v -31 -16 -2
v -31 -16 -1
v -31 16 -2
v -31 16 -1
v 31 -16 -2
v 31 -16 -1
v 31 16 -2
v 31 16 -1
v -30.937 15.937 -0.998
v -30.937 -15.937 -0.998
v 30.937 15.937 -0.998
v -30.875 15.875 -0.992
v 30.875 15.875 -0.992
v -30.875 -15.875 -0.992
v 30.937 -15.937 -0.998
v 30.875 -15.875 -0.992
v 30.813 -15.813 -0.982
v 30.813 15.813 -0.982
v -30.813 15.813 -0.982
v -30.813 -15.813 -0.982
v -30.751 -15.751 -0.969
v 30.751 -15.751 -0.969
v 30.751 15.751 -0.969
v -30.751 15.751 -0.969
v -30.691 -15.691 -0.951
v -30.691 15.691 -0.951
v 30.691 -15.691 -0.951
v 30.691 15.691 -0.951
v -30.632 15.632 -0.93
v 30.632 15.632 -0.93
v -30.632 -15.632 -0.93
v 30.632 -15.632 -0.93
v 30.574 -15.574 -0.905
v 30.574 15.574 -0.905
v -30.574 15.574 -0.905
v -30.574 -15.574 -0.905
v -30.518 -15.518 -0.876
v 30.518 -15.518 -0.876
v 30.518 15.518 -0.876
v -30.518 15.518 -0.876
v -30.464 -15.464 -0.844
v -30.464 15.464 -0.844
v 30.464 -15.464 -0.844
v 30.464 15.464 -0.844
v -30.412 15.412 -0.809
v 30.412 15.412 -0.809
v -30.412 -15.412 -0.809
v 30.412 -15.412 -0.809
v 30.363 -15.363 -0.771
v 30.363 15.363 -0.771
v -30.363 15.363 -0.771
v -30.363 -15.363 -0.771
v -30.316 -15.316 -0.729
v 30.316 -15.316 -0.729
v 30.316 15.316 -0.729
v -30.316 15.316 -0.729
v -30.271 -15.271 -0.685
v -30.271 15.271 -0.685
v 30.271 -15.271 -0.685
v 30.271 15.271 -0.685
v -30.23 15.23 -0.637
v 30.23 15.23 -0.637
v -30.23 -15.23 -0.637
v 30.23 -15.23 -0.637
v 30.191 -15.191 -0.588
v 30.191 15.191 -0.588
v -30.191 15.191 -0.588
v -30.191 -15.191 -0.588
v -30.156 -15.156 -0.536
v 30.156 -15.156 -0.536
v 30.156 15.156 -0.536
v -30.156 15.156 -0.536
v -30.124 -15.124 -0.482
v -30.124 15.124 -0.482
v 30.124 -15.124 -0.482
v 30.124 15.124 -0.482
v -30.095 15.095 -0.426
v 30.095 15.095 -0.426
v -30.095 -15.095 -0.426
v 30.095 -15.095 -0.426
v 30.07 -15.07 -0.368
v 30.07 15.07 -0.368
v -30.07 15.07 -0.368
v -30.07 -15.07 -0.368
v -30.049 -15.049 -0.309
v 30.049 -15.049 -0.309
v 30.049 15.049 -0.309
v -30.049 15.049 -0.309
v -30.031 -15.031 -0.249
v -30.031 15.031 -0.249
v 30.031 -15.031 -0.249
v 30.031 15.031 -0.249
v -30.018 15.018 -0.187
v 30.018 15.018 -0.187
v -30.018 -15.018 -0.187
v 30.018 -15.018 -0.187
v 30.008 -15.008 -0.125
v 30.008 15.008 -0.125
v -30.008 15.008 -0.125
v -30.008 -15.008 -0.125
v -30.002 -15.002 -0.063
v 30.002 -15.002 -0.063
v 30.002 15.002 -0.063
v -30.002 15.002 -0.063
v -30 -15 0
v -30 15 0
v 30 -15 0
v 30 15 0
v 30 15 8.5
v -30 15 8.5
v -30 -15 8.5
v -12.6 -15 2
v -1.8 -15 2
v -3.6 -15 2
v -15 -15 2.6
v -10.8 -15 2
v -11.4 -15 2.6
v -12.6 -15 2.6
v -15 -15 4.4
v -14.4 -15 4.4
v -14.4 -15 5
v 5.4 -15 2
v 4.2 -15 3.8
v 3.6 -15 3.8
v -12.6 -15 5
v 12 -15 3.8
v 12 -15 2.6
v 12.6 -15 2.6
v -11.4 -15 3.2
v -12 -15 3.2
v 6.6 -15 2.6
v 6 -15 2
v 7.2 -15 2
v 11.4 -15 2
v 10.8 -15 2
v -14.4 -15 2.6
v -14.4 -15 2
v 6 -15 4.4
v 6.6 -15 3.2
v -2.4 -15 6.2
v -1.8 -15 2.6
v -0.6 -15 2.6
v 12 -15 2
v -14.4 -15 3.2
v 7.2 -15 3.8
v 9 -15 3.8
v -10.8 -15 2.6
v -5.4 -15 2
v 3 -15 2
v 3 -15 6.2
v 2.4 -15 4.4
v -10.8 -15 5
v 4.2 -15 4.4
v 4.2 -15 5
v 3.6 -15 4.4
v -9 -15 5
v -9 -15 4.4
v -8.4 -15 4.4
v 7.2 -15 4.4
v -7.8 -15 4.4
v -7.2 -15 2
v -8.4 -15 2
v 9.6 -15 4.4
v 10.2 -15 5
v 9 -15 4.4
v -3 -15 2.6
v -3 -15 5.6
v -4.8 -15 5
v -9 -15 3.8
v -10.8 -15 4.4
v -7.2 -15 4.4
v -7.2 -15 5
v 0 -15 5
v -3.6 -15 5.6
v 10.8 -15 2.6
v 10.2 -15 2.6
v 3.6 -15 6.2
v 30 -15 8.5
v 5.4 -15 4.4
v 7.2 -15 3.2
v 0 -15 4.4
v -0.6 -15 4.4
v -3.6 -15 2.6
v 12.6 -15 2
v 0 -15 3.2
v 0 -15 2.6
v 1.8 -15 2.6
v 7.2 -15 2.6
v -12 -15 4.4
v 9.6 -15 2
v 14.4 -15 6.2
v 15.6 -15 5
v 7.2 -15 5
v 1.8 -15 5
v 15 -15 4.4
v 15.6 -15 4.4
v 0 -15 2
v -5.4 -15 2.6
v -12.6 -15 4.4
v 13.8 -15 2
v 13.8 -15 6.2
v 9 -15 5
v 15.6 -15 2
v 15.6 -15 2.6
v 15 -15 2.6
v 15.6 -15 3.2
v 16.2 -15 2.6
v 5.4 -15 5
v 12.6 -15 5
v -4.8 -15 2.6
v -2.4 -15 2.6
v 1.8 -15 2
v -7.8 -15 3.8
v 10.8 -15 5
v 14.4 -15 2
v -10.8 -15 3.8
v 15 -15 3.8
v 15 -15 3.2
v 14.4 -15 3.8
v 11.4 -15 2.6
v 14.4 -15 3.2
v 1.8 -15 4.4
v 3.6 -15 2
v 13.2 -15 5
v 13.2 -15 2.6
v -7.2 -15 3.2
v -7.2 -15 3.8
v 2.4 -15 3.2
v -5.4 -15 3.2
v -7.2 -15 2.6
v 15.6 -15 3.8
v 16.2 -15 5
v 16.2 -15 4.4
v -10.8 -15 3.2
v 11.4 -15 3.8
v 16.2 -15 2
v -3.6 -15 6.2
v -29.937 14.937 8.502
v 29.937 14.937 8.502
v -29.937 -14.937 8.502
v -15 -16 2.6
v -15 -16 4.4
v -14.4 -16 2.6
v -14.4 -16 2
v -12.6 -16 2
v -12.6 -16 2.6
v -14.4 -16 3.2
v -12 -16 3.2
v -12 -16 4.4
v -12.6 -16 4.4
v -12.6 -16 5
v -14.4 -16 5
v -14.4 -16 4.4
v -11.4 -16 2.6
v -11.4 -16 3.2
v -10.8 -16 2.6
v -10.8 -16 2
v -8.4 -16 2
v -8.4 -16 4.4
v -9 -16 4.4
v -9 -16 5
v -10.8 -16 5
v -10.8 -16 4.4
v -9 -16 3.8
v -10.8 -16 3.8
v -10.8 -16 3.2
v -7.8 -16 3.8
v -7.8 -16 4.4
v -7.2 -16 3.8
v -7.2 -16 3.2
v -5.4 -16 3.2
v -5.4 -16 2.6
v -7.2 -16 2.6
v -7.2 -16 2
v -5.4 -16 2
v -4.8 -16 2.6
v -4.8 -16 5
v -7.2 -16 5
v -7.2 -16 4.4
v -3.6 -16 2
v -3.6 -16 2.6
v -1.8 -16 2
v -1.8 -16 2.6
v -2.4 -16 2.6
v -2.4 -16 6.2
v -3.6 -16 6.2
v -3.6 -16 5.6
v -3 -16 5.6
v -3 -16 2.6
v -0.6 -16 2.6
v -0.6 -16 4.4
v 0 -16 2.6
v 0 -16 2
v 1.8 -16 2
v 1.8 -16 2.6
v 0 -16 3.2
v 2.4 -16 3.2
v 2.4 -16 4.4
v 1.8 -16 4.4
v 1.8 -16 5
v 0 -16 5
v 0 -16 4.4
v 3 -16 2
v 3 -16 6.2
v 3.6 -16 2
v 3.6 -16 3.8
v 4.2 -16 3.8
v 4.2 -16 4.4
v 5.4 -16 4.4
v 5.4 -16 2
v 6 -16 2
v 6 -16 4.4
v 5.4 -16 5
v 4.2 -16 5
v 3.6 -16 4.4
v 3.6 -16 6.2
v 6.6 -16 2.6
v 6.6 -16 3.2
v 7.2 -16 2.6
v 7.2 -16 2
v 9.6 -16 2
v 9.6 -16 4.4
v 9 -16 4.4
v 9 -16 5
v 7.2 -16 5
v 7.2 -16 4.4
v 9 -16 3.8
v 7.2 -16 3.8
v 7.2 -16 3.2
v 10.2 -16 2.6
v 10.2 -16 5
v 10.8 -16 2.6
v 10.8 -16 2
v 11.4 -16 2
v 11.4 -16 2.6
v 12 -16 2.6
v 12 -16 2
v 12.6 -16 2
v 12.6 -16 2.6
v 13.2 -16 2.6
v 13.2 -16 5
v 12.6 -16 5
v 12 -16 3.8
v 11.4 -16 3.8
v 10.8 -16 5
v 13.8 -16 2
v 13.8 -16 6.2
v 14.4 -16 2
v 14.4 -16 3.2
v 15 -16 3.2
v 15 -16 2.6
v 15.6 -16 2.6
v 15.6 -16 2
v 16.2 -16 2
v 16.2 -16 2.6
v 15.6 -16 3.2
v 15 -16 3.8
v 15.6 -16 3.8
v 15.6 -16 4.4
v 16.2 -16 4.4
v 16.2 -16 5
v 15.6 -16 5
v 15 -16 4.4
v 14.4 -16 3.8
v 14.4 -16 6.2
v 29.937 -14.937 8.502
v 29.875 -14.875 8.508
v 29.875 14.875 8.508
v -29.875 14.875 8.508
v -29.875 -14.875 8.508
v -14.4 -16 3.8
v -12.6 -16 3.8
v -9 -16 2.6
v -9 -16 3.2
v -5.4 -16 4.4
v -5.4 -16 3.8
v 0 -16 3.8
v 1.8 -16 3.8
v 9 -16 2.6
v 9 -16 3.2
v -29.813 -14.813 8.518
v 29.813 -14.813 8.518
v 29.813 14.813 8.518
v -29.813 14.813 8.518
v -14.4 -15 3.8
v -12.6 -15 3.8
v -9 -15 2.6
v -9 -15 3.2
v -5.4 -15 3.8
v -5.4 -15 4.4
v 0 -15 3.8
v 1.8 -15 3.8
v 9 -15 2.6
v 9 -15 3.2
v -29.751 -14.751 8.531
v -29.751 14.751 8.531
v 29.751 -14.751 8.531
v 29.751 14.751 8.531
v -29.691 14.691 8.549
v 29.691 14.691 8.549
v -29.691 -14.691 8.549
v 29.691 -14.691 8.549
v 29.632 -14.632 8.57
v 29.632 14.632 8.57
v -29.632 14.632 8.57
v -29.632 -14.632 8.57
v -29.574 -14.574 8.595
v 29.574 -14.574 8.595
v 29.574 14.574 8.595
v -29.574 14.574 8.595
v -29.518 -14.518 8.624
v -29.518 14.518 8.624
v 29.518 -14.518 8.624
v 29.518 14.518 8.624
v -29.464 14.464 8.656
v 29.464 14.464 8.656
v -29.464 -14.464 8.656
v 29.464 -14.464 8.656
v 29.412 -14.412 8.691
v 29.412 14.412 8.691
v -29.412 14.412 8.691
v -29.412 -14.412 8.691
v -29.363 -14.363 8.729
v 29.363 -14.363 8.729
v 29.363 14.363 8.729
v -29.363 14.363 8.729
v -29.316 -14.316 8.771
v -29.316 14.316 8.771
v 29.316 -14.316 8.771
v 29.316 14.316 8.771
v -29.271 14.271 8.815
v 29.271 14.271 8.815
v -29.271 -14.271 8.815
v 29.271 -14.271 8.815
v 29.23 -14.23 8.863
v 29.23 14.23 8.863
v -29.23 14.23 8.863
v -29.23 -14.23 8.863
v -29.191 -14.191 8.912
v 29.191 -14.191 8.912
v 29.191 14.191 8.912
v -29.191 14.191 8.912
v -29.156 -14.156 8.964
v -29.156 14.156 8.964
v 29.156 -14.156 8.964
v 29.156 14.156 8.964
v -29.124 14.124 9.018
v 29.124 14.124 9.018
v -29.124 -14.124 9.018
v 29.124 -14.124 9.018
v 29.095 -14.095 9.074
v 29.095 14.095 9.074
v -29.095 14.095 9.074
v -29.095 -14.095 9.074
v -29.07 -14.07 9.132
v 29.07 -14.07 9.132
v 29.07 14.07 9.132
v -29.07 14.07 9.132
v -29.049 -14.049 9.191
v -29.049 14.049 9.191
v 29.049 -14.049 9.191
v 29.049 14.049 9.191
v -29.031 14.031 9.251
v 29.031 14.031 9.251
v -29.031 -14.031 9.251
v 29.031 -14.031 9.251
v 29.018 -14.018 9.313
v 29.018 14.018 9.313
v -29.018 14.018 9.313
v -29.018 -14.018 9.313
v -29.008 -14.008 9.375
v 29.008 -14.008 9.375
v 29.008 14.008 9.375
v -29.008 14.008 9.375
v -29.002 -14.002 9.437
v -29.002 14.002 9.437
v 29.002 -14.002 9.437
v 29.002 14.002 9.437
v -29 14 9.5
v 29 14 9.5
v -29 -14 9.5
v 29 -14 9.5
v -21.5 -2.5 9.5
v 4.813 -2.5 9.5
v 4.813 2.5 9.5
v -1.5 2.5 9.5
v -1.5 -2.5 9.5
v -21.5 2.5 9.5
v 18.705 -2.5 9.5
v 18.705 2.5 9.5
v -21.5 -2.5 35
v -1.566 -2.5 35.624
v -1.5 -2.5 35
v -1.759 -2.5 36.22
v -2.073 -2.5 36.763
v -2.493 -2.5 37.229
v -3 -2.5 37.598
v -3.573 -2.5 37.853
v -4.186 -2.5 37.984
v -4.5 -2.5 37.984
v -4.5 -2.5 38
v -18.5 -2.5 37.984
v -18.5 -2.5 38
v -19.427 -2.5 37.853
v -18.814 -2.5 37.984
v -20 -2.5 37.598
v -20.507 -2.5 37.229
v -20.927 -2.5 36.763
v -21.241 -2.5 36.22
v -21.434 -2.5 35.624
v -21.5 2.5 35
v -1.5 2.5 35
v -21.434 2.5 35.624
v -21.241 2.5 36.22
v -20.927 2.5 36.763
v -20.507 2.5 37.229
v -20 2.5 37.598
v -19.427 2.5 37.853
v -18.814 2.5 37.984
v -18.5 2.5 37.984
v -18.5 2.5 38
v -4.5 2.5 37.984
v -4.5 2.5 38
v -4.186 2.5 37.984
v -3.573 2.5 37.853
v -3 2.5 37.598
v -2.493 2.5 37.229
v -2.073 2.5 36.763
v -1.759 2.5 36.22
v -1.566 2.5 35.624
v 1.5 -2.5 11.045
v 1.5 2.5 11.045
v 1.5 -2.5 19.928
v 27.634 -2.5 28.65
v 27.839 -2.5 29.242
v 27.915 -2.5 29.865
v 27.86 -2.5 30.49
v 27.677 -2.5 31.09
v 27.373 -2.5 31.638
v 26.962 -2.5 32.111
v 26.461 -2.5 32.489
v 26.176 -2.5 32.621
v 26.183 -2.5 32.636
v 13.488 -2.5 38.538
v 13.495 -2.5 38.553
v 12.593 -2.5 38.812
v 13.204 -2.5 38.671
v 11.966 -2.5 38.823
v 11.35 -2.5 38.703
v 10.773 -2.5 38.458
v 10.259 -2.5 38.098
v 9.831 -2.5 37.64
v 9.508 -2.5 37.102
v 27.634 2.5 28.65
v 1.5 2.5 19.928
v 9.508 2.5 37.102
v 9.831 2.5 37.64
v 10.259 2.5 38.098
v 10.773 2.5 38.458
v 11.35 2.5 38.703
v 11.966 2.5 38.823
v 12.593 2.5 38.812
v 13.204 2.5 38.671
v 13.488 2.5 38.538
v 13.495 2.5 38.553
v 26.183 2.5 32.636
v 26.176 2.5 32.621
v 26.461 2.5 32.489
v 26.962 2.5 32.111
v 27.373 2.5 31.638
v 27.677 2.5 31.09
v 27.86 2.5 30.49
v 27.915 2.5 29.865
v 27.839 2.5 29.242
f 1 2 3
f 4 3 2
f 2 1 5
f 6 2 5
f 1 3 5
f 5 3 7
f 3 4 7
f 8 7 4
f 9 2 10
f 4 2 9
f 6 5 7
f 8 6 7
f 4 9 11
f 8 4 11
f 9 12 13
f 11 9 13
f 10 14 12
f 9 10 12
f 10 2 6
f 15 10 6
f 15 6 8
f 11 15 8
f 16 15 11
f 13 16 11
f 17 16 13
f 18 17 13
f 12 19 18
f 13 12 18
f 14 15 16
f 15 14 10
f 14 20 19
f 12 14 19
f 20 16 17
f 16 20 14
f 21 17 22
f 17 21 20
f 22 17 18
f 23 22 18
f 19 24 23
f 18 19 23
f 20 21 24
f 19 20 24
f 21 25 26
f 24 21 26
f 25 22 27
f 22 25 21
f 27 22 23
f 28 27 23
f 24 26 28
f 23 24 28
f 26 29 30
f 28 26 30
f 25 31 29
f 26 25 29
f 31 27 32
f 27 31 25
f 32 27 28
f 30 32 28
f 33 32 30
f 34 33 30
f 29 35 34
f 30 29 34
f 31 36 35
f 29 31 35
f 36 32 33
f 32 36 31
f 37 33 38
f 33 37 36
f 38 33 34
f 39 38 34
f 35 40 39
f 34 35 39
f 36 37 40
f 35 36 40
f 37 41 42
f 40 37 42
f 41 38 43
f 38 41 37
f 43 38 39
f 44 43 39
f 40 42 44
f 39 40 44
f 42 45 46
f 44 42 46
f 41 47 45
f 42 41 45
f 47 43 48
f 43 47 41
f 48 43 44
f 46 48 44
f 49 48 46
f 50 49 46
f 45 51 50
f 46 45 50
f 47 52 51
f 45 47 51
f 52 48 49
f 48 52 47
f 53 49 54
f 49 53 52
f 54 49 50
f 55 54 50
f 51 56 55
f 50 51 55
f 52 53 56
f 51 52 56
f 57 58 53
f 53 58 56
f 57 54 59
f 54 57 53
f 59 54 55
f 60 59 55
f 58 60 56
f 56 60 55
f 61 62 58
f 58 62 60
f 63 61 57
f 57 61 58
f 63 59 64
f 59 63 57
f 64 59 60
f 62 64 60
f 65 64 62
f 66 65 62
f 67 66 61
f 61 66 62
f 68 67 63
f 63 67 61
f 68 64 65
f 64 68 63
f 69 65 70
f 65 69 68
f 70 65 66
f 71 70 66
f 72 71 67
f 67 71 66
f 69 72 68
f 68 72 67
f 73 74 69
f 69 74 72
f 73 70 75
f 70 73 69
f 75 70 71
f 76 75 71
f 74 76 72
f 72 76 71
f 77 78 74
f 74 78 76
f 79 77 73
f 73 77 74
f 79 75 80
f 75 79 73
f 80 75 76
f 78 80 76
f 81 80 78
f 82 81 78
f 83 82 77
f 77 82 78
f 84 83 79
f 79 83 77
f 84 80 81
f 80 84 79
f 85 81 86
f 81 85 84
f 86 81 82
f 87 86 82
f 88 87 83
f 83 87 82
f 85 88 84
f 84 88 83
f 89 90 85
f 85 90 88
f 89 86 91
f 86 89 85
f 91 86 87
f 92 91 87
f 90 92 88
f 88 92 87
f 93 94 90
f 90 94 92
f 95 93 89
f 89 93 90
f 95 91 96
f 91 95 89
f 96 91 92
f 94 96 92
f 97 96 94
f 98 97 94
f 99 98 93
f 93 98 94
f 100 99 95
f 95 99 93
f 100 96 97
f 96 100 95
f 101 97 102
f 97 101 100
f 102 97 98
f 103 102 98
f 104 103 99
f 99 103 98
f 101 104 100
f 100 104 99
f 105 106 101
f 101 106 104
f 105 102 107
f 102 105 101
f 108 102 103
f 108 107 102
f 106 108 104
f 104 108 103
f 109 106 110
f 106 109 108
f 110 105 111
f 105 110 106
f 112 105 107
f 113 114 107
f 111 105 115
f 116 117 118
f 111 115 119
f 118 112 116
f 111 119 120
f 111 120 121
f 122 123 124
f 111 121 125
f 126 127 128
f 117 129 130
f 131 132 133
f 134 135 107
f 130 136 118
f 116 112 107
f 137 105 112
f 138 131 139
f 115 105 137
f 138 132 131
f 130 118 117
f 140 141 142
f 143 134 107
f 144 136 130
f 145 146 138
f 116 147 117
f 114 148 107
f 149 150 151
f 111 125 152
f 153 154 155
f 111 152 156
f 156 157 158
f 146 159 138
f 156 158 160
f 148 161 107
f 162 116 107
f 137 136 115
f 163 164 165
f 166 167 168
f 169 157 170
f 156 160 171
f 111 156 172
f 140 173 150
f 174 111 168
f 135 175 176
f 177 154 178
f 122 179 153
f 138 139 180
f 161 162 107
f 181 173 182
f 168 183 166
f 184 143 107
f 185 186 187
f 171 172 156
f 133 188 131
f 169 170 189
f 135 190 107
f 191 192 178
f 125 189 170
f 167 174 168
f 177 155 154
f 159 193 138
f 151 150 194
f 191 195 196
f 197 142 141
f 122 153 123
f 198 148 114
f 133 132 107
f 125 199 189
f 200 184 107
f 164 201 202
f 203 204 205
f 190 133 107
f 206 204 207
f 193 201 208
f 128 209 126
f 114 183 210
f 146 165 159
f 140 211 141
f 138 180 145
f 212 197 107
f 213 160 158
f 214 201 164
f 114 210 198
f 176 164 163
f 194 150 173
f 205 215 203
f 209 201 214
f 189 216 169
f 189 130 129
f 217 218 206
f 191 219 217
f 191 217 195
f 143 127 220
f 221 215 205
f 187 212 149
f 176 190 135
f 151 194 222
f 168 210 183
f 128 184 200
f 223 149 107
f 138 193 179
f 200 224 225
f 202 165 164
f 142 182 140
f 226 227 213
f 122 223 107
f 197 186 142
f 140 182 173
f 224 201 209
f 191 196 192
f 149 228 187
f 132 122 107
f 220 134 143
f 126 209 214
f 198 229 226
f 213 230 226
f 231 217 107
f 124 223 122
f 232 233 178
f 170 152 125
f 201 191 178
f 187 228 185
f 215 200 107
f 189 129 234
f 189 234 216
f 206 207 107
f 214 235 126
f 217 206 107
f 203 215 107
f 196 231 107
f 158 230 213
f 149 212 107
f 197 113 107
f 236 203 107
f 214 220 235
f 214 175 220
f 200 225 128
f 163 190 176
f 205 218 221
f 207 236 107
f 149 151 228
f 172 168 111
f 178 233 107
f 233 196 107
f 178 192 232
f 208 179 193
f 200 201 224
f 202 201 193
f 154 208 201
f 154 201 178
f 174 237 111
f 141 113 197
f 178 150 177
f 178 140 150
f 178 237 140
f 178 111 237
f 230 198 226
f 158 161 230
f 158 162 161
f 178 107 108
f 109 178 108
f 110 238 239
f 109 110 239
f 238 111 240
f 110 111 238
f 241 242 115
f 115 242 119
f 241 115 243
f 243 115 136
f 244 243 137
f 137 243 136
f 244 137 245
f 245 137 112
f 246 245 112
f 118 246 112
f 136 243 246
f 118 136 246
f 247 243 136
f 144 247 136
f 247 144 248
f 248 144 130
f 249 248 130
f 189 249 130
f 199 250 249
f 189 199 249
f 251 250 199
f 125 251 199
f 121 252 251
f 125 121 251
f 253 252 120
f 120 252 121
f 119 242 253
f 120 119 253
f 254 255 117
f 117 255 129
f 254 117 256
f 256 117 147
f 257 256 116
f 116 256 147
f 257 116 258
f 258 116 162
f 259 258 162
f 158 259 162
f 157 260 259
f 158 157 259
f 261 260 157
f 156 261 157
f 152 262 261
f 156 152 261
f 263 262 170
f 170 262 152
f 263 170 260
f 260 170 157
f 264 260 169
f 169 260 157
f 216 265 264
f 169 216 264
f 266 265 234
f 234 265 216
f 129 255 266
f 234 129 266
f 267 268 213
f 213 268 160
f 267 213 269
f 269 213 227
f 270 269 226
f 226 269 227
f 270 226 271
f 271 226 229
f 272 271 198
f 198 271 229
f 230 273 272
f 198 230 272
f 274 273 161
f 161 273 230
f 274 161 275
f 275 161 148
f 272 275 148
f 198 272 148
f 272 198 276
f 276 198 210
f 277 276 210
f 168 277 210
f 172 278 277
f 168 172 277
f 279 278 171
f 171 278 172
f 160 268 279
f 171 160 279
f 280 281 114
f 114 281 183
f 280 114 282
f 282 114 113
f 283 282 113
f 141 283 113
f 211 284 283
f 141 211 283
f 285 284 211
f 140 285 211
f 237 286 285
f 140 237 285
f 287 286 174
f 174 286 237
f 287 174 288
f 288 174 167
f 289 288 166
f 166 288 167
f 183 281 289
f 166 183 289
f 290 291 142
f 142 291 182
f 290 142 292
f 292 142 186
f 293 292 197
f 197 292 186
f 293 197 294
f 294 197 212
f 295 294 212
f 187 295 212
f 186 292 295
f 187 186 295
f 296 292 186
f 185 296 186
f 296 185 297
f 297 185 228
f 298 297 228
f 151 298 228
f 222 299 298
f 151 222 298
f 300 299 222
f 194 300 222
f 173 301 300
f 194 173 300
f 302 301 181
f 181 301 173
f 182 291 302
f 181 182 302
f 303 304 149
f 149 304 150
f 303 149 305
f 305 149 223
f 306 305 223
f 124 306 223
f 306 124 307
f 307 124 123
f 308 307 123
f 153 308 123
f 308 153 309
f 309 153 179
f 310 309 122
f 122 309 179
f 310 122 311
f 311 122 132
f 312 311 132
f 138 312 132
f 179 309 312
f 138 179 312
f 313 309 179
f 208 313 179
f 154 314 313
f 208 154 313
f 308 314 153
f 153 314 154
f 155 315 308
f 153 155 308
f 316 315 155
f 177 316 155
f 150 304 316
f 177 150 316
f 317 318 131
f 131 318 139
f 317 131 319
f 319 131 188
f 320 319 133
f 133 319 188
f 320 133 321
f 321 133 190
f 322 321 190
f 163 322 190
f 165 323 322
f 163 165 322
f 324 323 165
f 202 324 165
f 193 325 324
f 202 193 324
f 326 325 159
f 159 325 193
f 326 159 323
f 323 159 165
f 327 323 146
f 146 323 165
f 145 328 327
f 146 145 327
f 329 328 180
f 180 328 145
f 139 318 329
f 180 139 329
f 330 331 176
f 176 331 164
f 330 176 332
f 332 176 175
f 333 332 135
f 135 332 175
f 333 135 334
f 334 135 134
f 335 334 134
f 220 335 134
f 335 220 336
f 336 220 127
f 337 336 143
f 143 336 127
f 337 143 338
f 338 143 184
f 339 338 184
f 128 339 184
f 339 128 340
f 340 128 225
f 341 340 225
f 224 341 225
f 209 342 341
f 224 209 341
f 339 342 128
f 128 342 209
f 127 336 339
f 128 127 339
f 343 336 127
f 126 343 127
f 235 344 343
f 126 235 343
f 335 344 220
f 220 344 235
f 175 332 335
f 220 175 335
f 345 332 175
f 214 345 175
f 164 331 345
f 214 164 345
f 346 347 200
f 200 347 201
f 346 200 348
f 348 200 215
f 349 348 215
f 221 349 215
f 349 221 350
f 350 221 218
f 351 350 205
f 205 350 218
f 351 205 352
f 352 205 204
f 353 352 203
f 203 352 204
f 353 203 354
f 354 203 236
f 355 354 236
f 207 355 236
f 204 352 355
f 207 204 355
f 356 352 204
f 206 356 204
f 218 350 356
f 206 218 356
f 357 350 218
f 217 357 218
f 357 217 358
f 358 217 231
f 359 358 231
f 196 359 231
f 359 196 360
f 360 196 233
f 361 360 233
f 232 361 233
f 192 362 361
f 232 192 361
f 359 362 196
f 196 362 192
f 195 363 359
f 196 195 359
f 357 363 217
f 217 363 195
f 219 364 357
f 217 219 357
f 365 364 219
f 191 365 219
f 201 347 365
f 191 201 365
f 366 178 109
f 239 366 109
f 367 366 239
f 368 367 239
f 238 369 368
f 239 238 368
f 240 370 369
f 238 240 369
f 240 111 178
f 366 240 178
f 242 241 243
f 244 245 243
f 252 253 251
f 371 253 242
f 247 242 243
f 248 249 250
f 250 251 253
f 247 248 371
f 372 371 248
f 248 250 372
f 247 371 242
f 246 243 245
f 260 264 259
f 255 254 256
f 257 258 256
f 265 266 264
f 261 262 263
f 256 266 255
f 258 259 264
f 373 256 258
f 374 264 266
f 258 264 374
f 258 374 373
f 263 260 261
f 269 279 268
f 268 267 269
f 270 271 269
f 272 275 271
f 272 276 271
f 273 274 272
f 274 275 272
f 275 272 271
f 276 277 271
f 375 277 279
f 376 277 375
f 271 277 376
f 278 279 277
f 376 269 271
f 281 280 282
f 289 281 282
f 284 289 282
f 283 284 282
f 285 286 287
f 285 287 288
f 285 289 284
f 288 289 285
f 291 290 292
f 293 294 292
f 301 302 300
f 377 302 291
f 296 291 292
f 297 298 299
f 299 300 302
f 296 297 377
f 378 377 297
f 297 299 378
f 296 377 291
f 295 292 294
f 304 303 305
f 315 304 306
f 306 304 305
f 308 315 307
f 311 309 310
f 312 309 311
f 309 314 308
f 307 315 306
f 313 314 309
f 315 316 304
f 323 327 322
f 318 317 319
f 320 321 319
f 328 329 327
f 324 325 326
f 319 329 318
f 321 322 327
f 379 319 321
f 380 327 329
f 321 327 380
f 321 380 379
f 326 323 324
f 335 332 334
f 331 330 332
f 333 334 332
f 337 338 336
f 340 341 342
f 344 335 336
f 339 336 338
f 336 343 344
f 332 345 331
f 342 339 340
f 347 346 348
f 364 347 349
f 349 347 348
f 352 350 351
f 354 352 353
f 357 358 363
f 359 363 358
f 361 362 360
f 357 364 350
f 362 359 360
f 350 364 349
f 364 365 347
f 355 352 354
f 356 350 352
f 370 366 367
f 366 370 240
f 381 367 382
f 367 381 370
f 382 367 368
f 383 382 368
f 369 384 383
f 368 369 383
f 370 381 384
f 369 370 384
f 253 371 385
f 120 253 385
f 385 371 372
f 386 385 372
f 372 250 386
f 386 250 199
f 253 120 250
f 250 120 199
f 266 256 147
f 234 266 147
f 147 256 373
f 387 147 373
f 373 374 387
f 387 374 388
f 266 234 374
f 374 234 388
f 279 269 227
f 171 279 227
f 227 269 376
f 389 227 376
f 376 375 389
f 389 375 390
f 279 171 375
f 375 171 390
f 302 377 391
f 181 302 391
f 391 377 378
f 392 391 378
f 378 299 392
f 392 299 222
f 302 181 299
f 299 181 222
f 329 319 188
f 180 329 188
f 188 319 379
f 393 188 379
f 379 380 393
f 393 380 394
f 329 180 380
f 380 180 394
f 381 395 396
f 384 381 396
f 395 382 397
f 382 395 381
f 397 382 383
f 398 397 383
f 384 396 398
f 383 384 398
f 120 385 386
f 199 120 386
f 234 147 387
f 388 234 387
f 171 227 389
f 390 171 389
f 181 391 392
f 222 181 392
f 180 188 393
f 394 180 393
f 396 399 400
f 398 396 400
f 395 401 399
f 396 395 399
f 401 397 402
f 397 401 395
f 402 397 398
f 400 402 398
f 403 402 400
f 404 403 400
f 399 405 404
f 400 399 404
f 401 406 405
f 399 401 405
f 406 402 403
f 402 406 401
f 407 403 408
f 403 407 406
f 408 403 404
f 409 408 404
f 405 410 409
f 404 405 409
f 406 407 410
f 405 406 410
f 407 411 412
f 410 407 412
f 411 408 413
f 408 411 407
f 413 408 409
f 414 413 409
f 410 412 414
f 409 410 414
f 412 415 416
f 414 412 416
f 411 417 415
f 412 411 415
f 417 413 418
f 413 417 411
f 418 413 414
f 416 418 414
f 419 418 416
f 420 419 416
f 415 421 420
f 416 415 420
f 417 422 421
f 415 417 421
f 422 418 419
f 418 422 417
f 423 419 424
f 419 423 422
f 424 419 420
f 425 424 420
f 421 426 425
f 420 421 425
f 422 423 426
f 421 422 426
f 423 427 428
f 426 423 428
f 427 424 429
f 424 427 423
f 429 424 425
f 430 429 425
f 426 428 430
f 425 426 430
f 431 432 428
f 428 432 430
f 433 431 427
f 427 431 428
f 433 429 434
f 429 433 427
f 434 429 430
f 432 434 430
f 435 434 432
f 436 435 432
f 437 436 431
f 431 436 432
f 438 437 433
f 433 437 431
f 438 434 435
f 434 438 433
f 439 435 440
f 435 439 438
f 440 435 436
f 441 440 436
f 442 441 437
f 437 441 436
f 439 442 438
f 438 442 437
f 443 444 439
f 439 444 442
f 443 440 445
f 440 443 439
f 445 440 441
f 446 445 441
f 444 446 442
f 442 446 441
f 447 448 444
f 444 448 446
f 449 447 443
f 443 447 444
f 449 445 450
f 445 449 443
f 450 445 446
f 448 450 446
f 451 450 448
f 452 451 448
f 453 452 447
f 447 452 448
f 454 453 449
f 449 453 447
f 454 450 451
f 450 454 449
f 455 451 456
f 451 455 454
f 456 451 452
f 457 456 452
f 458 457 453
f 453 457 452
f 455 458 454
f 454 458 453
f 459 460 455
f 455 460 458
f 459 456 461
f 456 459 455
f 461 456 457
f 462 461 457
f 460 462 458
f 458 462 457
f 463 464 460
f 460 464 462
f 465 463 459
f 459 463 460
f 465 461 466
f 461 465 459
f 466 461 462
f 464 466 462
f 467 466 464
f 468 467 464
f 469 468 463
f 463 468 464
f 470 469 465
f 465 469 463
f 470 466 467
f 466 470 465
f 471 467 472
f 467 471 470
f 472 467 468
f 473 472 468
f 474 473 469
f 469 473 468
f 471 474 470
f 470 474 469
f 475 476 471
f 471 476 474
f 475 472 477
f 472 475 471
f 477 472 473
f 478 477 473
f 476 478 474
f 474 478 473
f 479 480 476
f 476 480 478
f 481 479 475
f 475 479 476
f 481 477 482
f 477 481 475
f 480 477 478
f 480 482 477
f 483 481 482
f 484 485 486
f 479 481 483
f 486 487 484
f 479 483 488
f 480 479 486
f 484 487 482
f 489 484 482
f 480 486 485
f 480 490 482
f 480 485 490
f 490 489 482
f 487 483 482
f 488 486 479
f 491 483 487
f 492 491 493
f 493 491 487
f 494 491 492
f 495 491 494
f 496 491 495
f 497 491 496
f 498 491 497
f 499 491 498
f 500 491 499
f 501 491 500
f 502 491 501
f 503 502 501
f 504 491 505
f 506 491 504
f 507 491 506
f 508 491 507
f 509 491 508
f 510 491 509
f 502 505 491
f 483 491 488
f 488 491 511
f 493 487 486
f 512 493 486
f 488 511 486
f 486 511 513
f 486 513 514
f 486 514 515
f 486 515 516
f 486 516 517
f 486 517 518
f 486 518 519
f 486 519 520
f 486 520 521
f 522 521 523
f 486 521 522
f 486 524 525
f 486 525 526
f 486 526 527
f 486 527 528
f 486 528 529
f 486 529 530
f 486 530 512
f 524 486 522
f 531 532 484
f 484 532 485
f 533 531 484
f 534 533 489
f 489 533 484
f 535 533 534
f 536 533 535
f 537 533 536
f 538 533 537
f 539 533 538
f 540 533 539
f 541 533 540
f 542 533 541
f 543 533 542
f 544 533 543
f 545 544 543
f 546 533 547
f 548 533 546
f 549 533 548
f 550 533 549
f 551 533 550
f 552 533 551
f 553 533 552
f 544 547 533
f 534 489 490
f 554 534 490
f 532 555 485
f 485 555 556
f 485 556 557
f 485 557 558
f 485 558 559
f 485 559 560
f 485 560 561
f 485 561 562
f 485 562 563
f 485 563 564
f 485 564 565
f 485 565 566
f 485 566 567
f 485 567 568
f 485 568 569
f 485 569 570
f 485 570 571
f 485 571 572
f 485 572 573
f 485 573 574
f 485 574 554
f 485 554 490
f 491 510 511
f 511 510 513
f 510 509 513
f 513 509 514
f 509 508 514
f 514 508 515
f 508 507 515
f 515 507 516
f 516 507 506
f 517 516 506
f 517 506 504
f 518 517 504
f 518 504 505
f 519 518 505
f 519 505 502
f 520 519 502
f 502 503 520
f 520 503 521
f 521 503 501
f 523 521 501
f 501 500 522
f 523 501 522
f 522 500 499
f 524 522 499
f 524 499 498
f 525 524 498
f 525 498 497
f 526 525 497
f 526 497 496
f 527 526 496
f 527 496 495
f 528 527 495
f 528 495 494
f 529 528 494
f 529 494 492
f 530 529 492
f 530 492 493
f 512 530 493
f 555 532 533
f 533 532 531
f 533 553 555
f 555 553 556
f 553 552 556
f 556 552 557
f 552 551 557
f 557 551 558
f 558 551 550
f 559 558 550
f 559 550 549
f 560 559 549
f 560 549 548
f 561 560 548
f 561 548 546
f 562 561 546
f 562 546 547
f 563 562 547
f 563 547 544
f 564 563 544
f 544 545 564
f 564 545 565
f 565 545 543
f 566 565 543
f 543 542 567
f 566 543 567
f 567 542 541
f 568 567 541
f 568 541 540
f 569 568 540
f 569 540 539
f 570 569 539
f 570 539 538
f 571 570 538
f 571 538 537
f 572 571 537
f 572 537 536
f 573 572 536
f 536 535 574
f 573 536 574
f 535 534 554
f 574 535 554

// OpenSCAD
// file: TextGenerator.scad
//Draw text
scale([4,4,4]) drawtext("OpenerPCR");

//Draw character set
//scale([2,2,2]) drawtext(" !\"#$%&'()*+,-./0123456789:;<=>?@ABCDEFGHIJKLMNOPQRSTUVWXYZ[\\]^_`abcdefghijklmnopqrstuvwxyz{|}");

module drawtext(text) {
	//Characters
	chars = " !\"#$%&'()*+,-./0123456789:;<=>?@ABCDEFGHIJKLMNOPQRSTUVWXYZ[\\]^_`abcdefghijklmnopqrstuvwxyz{|}";

	//Chracter table defining 5x7 characters
	//Adapted from: http://www.geocities.com/dinceraydin/djlcdsim/chartable.js
	char_table = [ [ 0, 0, 0, 0, 0, 0, 0],
                  [ 4, 0, 4, 4, 4, 4, 4],
                  [ 0, 0, 0, 0,10,10,10],
                  [10,10,31,10,31,10,10],
                  [ 4,30, 5,14,20,15, 4],
                  [ 3,19, 8, 4, 2,25,24],
                  [13,18,21, 8,20,18,12],
                  [ 0, 0, 0, 0, 8, 4,12],
                  [ 2, 4, 8, 8, 8, 4, 2],
                  [ 8, 4, 2, 2, 2, 4, 8],
                  [ 0, 4,21,14,21, 4, 0],
                  [ 0, 4, 4,31, 4, 4, 0],
                  [ 8, 4,12, 0, 0, 0, 0],
                  [ 0, 0, 0,31, 0, 0, 0],
                  [12,12, 0, 0, 0, 0, 0],
                  [ 0,16, 8, 4, 2, 1, 0],
                  [14,17,25,21,19,17,14],
                  [14, 4, 4, 4, 4,12, 4],
                  [31, 8, 4, 2, 1,17,14],
                  [14,17, 1, 2, 4, 2,31],
                  [ 2, 2,31,18,10, 6, 2],
                  [14,17, 1, 1,30,16,31],
                  [14,17,17,30,16, 8, 6],
                  [ 8, 8, 8, 4, 2, 1,31],
                  [14,17,17,14,17,17,14],
                  [12, 2, 1,15,17,17,14],
                  [ 0,12,12, 0,12,12, 0],
                  [ 8, 4,12, 0,12,12, 0],
                  [ 2, 4, 8,16, 8, 4, 2],
                  [ 0, 0,31, 0,31, 0, 0],
                  [16, 8, 4, 2, 4, 8,16],
                  [ 4, 0, 4, 2, 1,17,14],
                  [14,21,21,13, 1,17,14],
                  [17,17,31,17,17,17,14],
                  [30,17,17,30,17,17,30],
                  [14,17,16,16,16,17,14],
                  [30,17,17,17,17,17,30],
                  [31,16,16,30,16,16,31],
                  [16,16,16,30,16,16,31],
                  [15,17,17,23,16,17,14],
                  [17,17,17,31,17,17,17],
                  [14, 4, 4, 4, 4, 4,14],
                  [12,18, 2, 2, 2, 2, 7],
                  [17,18,20,24,20,18,17],
                  [31,16,16,16,16,16,16],
                  [17,17,17,21,21,27,17],
                  [17,17,19,21,25,17,17],
                  [14,17,17,17,17,17,14],
                  [16,16,16,30,17,17,30],
                  [13,18,21,17,17,17,14],
                  [17,18,20,30,17,17,30],
                  [30, 1, 1,14,16,16,15],
                  [ 4, 4, 4, 4, 4, 4,31],
                  [14,17,17,17,17,17,17],
                  [ 4,10,17,17,17,17,17],
                  [10,21,21,21,17,17,17],
                  [17,17,10, 4,10,17,17],
                  [ 4, 4, 4,10,17,17,17],
                  [31,16, 8, 4, 2, 1,31],
                  [14, 8, 8, 8, 8, 8,14],
                  [ 0, 1, 2, 4, 8,16, 0],
                  [14, 2, 2, 2, 2, 2,14],
                  [ 0, 0, 0, 0,17,10, 4],
                  [31, 0, 0, 0, 0, 0, 0],
                  [ 0, 0, 0, 0, 2, 4, 8],
                  [15,17,15, 1,14, 0, 0],
                  [30,17,17,25,22,16,16],
                  [14,17,16,16,14, 0, 0],
                  [15,17,17,19,13, 1, 1],
                  [14,16,31,17,14, 0, 0],
                  [ 8, 8, 8,28, 8, 9, 6],
                  [14, 1,15,17,15, 0, 0],
                  [17,17,17,25,22,16,16],
                  [14, 4, 4, 4,12, 0, 4],
                  [12,18, 2, 2, 2, 6, 2],
                  [18,20,24,20,18,16,16],
                  [14, 4, 4, 4, 4, 4,12],
                  [17,17,21,21,26, 0, 0],
                  [17,17,17,25,22, 0, 0],
                  [14,17,17,17,14, 0, 0],
                  [16,16,30,17,30, 0, 0],
                  [ 1, 1,15,19,13, 0, 0],
                  [16,16,16,25,22, 0, 0],
                  [30, 1,14,16,15, 0, 0],
                  [ 6, 9, 8, 8,28, 8, 8],
                  [13,19,17,17,17, 0, 0],
                  [ 4,10,17,17,17, 0, 0],
                  [10,21,21,17,17, 0, 0],
                  [17,10, 4,10,17, 0, 0],
                  [14, 1,15,17,17, 0, 0],
                  [31, 8, 4, 2,31, 0, 0],
                  [ 2, 4, 4, 8, 4, 4, 2],
                  [ 4, 4, 4, 4, 4, 4, 4],
                  [ 8, 4, 4, 2, 4, 4, 8] ];

	//Binary decode table
	dec_table = [ "00000", "00001", "00010", "00011", "00100", "00101",
  	            "00110", "00111", "01000", "01001", "01010", "01011",
  	            "01100", "01101", "01110", "01111", "10000", "10001",
  	            "10010", "10011", "10100", "10101", "10110", "10111",
	            "11000", "11001", "11010", "11011", "11100", "11101",
	            "11110", "11111" ];

	//Process string one character at a time
	for(itext = [0:len(text)-1]) {
		//Convert character to index
		assign(ichar = search(text[itext],chars,1)[0]) {
			//Decode character - rows
			for(irow = [0:6]) {
				assign(val = dec_table[char_table[ichar][irow]]) {
					//Decode character - cols
					for(icol = [0:4]) {
						assign(bit = search(val[icol],"01",1)[0]) {
							if(bit) {
								//Output cube
								translate([icol + (6*itext), irow, 0])
									cube([1.0001,1.0001,1]);
							}
						}
					}
				}
			}
		}
	}
}
// main file
//use <Spiff.scad>;
use <TextGenerator.scad>;
//use <Write.scad>;

module card(width, height, radius) {
	thickness = 5;
	inner_height = height - 2*radius;
	inner_width = width - 2*radius;

	c1_x = -inner_width / 2;
	c1_y = inner_height / 2;
	c2_x = inner_width / 2;
	c2_y = inner_height / 2;
	c3_x = -inner_width / 2;
	c3_y = -inner_height / 2;
	c4_x = inner_width / 2;
	c4_y = -inner_height / 2;
	
	union () {
		translate([c1_x, c1_y, 0])
		cylinder(r=radius, h=thickness, center=false, $fs=0.01);

		translate([c2_x, c2_y, 0])
		cylinder(r=radius, h=thickness, center=false, $fs=0.01);

		translate([c3_x, c3_y, 0])
		cylinder(r=radius, h=thickness, center=false, $fs=0.01);

		translate([c4_x, c4_y, 0])
		cylinder(r=radius, h=thickness, center=false, $fs=0.01);


		translate([-width/2, -inner_height/2, 0])
		cube([width, inner_height, thickness]);

		translate([-inner_width/2, -height/2, 0])
		cube([inner_width, height, thickness]);
	}
}

module logo_cards() {

	color([0.0, 0.0, 0.0, 1.0])
	card(20, 32, 3);

	color([1.0, 0.0, 0.0, 1.0])
	difference() {
		translate([25, 0, 0])
		rotate([0,0,-25])
		card(20, 30, 3);

		translate([0,-50, -5])
		cube([13, 100, 20]);
	}
}

module plate(dx, dy, dz) {
	difference() {
		translate([-dx/2, -dy/2, -dz/2])
		cube([dx, dy, dz]);

		translate([-dx/2, dy/2, dz/2])
		rotate([0, 90, 0])
		cylinder(h=dx, r=1, $fn=100);

		translate([-dx/2, -dy/2, dz/2])
		rotate([0, 90, 90])
		cylinder(h=dy, r=1, $fn=100);

		translate([dx/2, -dy/2, dz/2])
		rotate([0, 90, 180])
		cylinder(h=dx, r=1, $fn=100);

		translate([dx/2, dy/2, dz/2])
		rotate([0, 90, 270])
		cylinder(h=dy, r=1, $fn=100);
	}
}

module whole_shebang() {

	union() {
		// Cards
		//translate([-12.5, 2.5, 29])
		translate([-11.5, 2.5, 22])
		rotate([90, 0, 0])
		logo_cards();

		// Bottom
		//color([0.0, 0.0, 0.7, 1.0])
		color([1.0, 1.0, 1.0, 1.0])
		
		translate([0, 0, 4])
		plate(60, 30, 11);
		translate([0, 0, -1])
		plate(62, 32, 2);
		//cube([60, 30, 9]);

		// Sticks


		//Text
		color([1.0, 0.0, 0.0, 1.0])
		translate([-15, -13, 2])
		scale([0.6, 3, 0.6])
		rotate([90, 0, 0])
		drawtext("eaglehawk");
		//write("eaglehawk");
	}
}

whole_shebang();

//Text
//color([1.0, 0.0, 0.0, 1.0])
//translate([-15, -15, 2])
//rotate([90, 0, 0])
//scale([2., 2, 2.5])
//write("Hello World");
